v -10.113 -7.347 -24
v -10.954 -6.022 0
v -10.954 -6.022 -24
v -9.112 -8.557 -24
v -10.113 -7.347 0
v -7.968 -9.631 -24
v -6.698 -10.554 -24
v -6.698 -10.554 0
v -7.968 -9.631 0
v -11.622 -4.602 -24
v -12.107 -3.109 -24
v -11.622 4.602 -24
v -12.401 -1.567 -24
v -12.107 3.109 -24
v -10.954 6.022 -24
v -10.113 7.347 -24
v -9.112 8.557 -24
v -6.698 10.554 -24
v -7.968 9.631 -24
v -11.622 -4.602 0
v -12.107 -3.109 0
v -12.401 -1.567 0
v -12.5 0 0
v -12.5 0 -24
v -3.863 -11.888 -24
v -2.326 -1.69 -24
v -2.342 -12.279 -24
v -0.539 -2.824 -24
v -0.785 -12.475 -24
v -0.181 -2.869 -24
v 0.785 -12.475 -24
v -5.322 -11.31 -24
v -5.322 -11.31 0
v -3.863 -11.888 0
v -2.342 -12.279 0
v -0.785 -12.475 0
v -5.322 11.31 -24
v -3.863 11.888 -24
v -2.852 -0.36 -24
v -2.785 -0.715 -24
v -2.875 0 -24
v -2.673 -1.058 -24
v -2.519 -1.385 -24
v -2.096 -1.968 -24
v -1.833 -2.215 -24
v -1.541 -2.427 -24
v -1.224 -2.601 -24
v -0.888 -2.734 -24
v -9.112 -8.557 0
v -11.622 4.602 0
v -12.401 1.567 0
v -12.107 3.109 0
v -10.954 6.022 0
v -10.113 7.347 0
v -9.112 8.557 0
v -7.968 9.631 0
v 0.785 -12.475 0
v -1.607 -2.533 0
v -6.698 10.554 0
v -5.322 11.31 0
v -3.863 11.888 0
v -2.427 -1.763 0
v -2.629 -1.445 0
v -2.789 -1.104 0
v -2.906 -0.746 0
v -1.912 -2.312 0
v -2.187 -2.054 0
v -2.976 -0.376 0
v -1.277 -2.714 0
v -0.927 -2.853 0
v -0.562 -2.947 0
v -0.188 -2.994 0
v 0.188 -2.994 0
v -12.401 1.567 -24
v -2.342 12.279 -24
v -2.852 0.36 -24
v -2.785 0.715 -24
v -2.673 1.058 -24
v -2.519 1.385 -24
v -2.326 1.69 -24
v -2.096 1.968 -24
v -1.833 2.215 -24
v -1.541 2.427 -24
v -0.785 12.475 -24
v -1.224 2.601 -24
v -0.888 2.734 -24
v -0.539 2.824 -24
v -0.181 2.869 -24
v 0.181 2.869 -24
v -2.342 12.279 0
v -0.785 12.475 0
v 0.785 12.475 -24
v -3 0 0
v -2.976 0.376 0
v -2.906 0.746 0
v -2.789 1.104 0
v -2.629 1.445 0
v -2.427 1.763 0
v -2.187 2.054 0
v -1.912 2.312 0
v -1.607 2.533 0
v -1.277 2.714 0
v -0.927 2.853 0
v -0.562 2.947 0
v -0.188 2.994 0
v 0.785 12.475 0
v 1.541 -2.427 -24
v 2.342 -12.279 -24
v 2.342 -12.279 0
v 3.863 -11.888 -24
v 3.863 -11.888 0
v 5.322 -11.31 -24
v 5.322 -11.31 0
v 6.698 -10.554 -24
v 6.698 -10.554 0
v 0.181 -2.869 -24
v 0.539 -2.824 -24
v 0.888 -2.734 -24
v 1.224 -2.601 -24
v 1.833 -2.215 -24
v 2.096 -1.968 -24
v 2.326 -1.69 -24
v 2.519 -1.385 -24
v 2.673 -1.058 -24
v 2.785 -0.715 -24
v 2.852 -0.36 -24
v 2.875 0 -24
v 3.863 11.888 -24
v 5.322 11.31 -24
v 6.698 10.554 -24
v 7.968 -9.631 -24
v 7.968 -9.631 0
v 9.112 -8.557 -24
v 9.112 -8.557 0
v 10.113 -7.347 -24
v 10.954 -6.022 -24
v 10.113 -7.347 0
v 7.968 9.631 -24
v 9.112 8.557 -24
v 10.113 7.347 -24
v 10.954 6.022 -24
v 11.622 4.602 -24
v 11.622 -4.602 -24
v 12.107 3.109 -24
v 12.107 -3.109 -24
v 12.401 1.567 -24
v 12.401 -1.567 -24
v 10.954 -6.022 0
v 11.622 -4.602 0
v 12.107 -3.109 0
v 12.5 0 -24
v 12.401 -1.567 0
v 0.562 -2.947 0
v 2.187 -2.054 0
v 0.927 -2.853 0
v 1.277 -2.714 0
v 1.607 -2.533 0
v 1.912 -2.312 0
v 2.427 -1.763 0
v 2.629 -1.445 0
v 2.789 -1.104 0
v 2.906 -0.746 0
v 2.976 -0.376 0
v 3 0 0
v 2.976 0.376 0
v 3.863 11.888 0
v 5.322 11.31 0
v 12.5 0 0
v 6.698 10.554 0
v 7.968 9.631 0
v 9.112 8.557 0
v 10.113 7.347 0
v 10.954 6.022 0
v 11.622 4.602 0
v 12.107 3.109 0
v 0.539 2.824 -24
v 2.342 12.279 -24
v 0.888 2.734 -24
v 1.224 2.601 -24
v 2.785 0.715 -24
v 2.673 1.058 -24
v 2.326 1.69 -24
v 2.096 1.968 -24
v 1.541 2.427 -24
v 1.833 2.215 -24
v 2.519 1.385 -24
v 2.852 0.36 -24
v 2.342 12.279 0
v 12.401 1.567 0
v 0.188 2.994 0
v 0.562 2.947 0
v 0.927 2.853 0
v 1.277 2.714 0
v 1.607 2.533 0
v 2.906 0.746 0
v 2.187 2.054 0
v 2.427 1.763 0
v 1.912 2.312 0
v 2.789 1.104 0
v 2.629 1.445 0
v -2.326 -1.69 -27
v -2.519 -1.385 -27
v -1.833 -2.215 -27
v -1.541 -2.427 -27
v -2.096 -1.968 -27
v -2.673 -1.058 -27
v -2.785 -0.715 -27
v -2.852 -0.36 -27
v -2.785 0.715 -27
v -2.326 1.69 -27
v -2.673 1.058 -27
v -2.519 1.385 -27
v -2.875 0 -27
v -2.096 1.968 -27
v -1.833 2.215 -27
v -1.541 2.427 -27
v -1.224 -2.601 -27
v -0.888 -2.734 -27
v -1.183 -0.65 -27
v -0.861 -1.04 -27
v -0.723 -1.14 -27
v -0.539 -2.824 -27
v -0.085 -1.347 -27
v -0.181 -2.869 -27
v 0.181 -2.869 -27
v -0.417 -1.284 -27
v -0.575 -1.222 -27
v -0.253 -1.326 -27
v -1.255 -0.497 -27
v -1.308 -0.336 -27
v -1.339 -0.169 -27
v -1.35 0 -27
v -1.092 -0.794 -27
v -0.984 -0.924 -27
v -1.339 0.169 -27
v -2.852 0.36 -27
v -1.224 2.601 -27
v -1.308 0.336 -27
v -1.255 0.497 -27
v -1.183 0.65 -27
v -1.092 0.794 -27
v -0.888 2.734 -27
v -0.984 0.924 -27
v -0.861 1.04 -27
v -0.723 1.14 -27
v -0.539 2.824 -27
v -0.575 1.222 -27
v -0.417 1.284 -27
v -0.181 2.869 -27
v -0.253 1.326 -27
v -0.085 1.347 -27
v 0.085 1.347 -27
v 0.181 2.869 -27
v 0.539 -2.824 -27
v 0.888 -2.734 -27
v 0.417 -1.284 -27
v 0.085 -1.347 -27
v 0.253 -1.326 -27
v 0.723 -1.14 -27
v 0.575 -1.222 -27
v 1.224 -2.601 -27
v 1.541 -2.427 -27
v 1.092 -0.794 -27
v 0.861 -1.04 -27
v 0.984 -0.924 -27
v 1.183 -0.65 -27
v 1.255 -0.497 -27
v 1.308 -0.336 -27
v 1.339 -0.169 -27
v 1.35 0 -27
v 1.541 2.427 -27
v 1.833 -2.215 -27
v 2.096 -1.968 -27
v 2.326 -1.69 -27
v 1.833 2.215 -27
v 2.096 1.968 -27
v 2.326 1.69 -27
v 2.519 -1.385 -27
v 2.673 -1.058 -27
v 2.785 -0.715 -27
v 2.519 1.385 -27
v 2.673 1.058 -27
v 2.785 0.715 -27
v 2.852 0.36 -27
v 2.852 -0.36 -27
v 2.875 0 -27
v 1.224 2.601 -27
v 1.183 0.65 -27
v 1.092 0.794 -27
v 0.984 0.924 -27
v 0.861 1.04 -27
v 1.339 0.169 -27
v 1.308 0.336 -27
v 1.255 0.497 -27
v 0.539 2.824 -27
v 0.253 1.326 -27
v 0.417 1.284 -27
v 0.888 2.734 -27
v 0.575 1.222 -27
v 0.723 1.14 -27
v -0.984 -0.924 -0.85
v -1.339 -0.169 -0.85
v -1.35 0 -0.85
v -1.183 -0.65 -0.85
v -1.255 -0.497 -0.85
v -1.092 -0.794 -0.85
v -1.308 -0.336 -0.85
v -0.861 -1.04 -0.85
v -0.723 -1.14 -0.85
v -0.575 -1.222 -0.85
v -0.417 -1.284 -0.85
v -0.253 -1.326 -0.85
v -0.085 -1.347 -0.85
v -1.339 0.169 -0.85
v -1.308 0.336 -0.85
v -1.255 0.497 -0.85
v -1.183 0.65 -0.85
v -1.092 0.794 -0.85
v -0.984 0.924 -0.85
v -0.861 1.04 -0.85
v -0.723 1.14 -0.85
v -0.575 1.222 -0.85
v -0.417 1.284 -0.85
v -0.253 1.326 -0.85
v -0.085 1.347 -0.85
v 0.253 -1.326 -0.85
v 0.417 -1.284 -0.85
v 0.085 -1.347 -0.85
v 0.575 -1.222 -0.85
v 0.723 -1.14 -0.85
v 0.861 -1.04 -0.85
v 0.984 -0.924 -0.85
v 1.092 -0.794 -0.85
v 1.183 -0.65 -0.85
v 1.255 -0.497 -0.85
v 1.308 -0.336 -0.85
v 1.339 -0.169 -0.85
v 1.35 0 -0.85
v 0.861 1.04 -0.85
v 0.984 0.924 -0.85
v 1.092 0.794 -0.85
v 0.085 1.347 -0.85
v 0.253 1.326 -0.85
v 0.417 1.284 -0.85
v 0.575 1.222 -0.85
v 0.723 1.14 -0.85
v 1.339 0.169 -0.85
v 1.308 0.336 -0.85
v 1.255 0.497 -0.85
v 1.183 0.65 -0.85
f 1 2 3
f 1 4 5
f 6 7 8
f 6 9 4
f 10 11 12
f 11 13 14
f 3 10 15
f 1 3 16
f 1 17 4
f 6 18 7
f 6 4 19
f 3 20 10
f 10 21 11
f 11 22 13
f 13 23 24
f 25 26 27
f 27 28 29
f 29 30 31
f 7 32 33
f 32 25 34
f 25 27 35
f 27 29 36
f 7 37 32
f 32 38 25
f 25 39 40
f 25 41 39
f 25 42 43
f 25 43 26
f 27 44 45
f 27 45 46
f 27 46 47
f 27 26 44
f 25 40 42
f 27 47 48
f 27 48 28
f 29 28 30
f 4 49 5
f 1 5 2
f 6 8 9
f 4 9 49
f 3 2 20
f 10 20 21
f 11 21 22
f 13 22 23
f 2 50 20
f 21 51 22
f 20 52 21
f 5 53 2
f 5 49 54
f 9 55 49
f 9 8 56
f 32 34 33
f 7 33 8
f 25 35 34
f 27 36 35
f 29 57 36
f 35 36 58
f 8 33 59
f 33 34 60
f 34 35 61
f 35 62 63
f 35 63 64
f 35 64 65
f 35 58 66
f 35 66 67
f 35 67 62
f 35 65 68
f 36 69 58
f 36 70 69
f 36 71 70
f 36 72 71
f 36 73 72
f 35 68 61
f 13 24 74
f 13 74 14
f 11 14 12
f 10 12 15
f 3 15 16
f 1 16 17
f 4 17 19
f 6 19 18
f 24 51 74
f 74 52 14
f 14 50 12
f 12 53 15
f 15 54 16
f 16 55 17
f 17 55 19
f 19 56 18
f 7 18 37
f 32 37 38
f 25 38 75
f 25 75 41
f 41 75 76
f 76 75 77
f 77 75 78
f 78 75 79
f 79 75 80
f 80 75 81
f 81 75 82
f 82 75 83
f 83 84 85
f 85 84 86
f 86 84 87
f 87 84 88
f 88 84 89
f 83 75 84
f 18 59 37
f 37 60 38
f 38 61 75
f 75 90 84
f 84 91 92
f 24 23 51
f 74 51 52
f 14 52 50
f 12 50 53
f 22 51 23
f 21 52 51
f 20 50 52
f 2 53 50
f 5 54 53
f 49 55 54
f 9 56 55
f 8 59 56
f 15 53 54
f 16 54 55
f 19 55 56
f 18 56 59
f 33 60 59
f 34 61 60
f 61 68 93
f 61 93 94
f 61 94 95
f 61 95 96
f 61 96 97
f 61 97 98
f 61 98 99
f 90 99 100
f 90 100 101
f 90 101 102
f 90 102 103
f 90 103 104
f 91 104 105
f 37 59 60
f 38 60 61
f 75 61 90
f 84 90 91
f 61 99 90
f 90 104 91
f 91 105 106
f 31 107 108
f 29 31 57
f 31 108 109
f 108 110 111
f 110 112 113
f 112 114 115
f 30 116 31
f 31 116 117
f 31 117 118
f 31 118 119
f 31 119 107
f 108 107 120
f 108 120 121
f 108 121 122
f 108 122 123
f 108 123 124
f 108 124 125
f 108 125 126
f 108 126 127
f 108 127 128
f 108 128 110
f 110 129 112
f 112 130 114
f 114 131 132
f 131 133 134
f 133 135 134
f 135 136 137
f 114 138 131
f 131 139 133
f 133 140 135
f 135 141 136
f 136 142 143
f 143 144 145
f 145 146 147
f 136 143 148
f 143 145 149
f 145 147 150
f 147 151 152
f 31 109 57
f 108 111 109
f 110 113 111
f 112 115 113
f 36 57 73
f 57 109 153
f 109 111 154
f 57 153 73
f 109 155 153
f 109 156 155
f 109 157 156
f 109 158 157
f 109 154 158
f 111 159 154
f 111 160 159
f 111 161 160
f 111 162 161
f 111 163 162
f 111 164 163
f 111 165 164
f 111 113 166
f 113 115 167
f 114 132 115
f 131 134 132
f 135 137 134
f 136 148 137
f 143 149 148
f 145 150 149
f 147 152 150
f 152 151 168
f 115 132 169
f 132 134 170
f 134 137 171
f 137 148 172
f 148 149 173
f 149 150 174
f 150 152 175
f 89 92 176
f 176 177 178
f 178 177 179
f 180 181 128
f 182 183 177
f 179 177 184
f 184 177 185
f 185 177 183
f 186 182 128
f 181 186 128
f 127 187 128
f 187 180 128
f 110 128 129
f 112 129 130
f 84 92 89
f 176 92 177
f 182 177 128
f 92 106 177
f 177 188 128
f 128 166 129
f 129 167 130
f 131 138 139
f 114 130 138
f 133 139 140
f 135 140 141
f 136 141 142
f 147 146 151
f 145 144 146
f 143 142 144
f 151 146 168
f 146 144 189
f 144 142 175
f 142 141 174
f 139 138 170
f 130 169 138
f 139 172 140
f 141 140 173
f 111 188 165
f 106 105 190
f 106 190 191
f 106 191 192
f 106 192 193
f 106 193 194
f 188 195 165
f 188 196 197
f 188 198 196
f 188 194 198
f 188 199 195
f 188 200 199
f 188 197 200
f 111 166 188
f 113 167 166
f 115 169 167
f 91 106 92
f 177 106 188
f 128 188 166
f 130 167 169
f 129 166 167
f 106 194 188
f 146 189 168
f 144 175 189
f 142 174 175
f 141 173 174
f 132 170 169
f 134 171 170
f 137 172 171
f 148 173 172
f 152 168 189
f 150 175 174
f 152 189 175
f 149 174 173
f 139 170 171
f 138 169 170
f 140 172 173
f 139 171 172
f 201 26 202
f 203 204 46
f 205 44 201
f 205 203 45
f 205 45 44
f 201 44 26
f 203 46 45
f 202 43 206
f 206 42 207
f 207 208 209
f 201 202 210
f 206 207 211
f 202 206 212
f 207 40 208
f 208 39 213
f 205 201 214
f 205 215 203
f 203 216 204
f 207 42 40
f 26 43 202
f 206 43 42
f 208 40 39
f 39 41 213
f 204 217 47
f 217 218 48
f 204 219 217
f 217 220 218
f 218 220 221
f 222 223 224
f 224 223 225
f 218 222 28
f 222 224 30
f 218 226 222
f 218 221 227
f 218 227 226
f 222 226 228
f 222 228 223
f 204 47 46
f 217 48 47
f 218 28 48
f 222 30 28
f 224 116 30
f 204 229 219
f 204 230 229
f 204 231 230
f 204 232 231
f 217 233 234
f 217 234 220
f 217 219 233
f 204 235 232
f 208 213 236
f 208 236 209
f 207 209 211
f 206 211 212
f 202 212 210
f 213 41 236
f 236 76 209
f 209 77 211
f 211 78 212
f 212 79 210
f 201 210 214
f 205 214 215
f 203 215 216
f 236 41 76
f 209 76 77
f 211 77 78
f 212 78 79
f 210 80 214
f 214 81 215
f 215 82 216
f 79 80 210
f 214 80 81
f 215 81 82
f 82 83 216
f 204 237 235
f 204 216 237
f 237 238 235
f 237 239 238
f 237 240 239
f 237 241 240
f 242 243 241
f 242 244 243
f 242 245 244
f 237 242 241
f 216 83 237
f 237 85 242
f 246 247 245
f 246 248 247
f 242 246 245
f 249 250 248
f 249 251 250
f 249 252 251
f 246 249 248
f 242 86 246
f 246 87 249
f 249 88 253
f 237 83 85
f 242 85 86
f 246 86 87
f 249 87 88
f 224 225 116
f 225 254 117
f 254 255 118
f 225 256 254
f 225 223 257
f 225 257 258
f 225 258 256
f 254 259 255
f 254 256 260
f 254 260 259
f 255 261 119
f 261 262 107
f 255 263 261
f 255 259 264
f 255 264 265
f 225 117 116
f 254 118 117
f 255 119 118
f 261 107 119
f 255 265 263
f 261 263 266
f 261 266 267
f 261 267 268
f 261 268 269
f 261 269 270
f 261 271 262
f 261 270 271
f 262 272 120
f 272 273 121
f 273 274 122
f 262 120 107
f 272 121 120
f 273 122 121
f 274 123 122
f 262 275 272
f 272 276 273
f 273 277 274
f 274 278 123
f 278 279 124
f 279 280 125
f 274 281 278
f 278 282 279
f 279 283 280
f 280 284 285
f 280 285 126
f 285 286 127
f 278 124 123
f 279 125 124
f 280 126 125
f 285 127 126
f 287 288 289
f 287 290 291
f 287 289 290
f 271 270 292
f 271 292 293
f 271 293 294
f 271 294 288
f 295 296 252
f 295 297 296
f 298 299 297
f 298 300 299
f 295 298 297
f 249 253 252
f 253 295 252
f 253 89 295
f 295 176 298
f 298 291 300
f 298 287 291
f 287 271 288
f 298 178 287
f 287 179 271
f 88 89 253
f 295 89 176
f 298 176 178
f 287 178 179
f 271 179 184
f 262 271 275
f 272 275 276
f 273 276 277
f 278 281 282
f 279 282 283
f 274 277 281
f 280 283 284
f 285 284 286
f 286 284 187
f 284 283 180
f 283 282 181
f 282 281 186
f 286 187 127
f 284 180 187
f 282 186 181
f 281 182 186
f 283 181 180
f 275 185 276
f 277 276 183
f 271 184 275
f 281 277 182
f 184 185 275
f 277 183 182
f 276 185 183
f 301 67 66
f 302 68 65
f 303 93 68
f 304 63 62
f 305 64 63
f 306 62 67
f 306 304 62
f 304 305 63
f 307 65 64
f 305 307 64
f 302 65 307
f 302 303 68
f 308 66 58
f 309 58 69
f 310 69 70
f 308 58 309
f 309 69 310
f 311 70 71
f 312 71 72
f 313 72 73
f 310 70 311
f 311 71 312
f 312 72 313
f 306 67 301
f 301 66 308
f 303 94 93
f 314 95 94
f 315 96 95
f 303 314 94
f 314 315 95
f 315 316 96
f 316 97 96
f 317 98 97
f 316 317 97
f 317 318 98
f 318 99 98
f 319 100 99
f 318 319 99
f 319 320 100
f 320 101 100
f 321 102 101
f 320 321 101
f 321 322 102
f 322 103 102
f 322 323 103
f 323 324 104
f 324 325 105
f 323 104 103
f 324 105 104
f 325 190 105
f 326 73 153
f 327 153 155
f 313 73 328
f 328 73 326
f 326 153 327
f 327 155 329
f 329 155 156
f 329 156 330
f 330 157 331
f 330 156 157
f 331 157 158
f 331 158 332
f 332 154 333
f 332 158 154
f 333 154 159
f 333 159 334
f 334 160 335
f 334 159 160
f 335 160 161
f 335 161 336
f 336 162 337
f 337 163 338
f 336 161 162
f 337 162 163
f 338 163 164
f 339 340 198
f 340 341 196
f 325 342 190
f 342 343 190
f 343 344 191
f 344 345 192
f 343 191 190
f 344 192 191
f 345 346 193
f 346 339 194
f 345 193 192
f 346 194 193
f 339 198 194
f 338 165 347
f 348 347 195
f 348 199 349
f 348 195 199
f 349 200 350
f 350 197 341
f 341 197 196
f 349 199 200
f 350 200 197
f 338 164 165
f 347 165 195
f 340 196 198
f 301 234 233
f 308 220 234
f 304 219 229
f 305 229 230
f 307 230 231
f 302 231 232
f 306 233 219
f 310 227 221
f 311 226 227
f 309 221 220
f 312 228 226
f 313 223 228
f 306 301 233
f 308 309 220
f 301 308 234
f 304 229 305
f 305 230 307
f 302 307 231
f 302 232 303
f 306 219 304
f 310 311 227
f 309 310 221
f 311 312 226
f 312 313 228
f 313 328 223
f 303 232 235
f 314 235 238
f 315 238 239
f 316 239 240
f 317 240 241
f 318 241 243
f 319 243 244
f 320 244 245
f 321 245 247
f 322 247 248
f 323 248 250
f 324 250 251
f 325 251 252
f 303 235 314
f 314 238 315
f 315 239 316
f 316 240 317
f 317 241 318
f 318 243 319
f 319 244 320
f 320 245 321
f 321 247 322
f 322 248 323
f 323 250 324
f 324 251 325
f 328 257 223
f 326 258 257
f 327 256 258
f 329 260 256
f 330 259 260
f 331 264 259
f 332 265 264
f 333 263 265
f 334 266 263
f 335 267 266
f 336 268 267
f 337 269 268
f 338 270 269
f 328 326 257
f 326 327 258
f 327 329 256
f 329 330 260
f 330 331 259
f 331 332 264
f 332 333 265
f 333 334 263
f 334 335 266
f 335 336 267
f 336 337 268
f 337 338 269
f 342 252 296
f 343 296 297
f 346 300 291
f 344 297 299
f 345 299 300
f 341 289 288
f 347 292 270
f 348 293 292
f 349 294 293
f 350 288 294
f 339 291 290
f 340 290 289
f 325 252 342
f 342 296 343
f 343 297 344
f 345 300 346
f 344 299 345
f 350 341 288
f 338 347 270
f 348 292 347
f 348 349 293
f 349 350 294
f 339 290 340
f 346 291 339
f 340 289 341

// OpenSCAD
$fn = 50;

difference() {
	union() {
		translate(v = [0, 0, -24.0]) {
			cylinder(h = 24, r = 12.5);
		}
		#translate(v = [0, 0, -27.0]) {
			cylinder(h = 27, r = 2.875);
		}
	}
	union() {
		translate(v = [0, 0, 0]) {
			rotate(a = [0, 0, 0]) {
				difference() {
					union() {
						translate(v = [0, 0, -27.0]) {
							cylinder(h = 27, r = 1.0);
						}
						translate(v = [0, 0, -0.85]) {
							cylinder(h = 0.85, r1 = 1.35, r2 = 3.0);
						}
						translate(v = [0, 0, -27.0]) {
							cylinder(h = 27, r = 1.35);
						}
						translate(v = [0, 0, -27.0]) {
							cylinder(h = 27, r = 1.0);
						}
					}
					union();
				}
			}
		}
	}
}
